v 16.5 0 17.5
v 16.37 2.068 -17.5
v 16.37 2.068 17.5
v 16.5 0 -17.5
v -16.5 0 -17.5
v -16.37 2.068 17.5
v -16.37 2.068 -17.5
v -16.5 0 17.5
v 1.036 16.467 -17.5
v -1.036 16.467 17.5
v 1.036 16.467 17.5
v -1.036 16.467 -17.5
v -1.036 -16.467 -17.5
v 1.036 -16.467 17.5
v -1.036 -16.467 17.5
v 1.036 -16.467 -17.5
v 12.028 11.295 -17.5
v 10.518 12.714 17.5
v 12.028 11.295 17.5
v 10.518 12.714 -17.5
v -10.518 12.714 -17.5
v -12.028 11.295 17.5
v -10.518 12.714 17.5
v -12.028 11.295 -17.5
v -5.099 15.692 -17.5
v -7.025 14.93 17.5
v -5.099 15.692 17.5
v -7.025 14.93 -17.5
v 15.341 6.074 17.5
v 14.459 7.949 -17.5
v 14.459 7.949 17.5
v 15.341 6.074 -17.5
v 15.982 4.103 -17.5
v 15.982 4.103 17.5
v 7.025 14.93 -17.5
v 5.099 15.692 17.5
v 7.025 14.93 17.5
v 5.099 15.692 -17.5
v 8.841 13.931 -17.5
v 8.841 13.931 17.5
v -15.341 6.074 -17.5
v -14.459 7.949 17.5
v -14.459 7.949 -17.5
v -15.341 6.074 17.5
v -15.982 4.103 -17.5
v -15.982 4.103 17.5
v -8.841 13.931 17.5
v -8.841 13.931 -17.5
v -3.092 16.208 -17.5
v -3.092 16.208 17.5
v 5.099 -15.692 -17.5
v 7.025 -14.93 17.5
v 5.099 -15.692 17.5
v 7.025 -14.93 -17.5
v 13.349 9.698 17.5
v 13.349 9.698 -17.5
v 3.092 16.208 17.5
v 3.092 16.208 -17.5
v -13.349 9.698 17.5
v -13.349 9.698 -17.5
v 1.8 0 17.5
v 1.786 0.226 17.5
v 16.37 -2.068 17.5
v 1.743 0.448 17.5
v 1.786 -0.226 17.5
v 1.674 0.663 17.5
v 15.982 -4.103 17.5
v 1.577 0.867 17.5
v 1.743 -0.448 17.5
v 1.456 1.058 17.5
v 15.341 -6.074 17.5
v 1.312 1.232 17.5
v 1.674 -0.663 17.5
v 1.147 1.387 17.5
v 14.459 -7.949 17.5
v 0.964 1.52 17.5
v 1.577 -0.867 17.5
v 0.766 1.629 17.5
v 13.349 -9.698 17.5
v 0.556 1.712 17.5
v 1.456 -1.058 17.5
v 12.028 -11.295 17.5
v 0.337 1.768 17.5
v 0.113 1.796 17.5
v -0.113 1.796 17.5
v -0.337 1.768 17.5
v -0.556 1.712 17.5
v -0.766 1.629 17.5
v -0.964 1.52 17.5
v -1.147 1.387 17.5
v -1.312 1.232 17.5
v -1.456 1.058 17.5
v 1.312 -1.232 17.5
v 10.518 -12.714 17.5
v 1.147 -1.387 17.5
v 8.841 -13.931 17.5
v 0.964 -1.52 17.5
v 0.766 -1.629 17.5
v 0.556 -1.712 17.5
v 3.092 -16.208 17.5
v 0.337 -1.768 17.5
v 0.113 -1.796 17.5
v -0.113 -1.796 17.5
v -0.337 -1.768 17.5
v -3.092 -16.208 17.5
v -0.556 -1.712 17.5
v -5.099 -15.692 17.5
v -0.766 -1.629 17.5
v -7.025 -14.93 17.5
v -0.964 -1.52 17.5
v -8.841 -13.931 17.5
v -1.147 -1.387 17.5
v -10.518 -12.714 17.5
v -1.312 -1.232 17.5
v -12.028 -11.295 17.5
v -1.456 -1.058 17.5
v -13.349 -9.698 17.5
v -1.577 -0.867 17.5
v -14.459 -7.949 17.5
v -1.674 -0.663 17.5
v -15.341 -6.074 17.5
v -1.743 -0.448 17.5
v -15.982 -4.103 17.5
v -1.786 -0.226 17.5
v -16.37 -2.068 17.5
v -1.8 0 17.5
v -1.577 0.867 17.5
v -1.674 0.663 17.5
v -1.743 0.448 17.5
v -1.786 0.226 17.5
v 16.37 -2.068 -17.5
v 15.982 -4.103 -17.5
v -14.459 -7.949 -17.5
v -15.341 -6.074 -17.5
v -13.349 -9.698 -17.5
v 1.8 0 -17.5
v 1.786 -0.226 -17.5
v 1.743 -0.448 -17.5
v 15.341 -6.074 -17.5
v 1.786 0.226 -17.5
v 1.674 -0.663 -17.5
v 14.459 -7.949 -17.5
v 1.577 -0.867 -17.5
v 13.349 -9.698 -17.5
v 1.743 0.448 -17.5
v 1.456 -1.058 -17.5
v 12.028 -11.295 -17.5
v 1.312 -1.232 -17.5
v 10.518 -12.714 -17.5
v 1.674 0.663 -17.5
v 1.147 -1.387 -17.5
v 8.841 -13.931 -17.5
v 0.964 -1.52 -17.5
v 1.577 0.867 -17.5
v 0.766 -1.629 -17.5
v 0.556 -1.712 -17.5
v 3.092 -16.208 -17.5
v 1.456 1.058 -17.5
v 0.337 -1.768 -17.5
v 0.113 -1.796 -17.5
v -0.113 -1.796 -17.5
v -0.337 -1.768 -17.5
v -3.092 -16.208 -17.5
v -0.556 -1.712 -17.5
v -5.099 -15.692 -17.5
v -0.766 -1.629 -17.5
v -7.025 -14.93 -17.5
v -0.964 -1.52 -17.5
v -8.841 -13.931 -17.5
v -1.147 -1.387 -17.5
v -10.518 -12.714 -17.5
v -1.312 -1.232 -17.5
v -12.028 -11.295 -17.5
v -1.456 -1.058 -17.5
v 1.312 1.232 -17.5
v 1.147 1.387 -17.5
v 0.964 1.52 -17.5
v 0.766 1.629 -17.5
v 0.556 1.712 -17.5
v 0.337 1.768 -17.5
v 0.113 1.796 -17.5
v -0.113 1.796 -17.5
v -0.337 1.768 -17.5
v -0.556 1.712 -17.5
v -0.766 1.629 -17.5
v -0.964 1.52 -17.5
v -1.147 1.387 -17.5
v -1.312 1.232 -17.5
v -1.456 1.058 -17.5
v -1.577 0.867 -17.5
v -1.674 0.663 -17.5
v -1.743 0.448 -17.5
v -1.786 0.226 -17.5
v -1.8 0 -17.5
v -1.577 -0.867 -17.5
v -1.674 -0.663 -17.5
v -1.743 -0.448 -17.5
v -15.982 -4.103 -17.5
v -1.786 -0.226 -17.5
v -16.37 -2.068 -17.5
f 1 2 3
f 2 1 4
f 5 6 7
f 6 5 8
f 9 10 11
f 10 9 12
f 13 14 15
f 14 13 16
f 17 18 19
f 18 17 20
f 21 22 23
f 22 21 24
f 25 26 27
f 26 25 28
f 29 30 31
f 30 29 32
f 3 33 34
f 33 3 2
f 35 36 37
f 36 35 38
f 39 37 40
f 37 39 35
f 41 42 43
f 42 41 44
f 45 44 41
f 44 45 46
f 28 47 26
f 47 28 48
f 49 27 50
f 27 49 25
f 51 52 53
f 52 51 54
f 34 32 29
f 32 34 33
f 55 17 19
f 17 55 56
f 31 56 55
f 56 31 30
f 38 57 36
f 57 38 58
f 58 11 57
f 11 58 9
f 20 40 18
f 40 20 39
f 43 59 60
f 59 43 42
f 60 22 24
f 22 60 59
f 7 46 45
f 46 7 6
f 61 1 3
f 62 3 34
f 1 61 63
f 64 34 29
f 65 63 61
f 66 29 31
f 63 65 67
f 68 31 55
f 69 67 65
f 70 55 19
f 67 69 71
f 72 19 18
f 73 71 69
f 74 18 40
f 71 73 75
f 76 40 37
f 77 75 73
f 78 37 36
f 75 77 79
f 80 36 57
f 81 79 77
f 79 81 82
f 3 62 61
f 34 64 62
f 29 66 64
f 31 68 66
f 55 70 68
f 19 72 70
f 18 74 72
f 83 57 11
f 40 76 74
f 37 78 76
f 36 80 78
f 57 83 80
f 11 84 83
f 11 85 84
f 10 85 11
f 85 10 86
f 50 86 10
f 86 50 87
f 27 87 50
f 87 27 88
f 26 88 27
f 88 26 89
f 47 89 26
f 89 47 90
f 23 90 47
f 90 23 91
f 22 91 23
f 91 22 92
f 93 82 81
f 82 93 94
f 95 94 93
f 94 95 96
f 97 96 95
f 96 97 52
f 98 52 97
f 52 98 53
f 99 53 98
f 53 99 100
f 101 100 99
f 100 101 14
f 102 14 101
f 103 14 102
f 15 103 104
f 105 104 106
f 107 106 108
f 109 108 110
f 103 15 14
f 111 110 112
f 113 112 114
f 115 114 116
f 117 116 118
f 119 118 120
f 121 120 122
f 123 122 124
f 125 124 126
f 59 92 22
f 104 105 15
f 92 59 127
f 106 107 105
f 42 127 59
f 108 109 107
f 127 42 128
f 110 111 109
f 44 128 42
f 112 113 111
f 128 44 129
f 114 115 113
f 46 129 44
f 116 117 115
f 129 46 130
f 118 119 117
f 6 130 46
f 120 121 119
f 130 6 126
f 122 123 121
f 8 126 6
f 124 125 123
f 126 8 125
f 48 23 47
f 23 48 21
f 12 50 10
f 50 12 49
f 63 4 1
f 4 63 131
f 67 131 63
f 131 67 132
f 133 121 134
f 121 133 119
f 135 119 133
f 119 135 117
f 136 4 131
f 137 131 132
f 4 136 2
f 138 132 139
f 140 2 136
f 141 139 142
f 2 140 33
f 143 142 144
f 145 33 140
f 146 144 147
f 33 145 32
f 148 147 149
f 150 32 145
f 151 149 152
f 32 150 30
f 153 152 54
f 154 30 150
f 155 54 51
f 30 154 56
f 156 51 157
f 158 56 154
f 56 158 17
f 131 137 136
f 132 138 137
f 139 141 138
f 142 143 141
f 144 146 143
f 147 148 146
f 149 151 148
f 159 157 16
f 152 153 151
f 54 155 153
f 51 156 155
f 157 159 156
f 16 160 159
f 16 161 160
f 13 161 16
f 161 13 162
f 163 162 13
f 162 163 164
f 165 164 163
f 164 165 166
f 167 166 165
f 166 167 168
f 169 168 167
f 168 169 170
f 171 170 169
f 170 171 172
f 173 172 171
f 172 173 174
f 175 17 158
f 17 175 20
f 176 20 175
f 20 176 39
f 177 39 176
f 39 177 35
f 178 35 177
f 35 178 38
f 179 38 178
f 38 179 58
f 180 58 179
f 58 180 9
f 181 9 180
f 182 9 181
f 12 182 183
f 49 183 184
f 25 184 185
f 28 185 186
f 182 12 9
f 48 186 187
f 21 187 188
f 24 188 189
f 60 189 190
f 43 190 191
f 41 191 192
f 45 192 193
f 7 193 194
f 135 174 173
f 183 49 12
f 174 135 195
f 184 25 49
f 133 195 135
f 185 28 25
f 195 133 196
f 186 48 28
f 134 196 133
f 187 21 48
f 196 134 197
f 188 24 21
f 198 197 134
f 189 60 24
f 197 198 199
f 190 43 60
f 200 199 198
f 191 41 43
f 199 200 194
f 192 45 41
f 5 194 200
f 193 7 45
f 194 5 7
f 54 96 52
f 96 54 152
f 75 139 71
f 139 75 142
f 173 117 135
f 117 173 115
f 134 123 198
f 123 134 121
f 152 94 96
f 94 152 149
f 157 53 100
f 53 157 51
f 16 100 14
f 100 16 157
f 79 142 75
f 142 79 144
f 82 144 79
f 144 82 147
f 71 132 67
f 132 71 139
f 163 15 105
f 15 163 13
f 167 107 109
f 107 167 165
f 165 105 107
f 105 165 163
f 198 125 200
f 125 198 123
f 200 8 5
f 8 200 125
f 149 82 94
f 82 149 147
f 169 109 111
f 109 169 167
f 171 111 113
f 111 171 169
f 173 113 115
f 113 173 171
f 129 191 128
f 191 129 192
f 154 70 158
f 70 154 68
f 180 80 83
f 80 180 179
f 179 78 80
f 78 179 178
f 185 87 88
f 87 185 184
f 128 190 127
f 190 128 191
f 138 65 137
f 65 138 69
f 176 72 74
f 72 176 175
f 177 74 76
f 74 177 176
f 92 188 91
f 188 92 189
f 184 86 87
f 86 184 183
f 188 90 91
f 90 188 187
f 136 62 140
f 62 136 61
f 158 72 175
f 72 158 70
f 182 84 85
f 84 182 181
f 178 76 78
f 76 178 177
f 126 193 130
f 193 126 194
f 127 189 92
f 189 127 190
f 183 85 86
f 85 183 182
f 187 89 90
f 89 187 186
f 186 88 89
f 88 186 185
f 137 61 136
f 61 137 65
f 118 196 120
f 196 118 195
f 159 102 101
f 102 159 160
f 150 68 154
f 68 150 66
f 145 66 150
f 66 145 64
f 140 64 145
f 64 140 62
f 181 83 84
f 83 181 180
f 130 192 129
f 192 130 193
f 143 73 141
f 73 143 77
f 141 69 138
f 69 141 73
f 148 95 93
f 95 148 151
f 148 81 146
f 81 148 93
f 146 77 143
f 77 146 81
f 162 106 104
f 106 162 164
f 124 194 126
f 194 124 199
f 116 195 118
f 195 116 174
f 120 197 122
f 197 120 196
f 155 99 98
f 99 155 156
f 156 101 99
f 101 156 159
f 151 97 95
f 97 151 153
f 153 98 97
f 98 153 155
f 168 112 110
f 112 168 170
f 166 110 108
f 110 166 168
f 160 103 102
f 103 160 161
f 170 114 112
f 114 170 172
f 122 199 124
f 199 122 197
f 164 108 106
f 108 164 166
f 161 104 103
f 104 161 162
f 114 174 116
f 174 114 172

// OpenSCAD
$fn = 50;


difference() {
	union() {
		translate(v = [0, 0, -17.5000000000]) {
			cylinder(h = 35, r = 16.5000000000);
		}
	}
	union() {
		translate(v = [0, 0, -100.0000000000]) {
			cylinder(h = 200, r = 1.8000000000);
		}
	}
}
